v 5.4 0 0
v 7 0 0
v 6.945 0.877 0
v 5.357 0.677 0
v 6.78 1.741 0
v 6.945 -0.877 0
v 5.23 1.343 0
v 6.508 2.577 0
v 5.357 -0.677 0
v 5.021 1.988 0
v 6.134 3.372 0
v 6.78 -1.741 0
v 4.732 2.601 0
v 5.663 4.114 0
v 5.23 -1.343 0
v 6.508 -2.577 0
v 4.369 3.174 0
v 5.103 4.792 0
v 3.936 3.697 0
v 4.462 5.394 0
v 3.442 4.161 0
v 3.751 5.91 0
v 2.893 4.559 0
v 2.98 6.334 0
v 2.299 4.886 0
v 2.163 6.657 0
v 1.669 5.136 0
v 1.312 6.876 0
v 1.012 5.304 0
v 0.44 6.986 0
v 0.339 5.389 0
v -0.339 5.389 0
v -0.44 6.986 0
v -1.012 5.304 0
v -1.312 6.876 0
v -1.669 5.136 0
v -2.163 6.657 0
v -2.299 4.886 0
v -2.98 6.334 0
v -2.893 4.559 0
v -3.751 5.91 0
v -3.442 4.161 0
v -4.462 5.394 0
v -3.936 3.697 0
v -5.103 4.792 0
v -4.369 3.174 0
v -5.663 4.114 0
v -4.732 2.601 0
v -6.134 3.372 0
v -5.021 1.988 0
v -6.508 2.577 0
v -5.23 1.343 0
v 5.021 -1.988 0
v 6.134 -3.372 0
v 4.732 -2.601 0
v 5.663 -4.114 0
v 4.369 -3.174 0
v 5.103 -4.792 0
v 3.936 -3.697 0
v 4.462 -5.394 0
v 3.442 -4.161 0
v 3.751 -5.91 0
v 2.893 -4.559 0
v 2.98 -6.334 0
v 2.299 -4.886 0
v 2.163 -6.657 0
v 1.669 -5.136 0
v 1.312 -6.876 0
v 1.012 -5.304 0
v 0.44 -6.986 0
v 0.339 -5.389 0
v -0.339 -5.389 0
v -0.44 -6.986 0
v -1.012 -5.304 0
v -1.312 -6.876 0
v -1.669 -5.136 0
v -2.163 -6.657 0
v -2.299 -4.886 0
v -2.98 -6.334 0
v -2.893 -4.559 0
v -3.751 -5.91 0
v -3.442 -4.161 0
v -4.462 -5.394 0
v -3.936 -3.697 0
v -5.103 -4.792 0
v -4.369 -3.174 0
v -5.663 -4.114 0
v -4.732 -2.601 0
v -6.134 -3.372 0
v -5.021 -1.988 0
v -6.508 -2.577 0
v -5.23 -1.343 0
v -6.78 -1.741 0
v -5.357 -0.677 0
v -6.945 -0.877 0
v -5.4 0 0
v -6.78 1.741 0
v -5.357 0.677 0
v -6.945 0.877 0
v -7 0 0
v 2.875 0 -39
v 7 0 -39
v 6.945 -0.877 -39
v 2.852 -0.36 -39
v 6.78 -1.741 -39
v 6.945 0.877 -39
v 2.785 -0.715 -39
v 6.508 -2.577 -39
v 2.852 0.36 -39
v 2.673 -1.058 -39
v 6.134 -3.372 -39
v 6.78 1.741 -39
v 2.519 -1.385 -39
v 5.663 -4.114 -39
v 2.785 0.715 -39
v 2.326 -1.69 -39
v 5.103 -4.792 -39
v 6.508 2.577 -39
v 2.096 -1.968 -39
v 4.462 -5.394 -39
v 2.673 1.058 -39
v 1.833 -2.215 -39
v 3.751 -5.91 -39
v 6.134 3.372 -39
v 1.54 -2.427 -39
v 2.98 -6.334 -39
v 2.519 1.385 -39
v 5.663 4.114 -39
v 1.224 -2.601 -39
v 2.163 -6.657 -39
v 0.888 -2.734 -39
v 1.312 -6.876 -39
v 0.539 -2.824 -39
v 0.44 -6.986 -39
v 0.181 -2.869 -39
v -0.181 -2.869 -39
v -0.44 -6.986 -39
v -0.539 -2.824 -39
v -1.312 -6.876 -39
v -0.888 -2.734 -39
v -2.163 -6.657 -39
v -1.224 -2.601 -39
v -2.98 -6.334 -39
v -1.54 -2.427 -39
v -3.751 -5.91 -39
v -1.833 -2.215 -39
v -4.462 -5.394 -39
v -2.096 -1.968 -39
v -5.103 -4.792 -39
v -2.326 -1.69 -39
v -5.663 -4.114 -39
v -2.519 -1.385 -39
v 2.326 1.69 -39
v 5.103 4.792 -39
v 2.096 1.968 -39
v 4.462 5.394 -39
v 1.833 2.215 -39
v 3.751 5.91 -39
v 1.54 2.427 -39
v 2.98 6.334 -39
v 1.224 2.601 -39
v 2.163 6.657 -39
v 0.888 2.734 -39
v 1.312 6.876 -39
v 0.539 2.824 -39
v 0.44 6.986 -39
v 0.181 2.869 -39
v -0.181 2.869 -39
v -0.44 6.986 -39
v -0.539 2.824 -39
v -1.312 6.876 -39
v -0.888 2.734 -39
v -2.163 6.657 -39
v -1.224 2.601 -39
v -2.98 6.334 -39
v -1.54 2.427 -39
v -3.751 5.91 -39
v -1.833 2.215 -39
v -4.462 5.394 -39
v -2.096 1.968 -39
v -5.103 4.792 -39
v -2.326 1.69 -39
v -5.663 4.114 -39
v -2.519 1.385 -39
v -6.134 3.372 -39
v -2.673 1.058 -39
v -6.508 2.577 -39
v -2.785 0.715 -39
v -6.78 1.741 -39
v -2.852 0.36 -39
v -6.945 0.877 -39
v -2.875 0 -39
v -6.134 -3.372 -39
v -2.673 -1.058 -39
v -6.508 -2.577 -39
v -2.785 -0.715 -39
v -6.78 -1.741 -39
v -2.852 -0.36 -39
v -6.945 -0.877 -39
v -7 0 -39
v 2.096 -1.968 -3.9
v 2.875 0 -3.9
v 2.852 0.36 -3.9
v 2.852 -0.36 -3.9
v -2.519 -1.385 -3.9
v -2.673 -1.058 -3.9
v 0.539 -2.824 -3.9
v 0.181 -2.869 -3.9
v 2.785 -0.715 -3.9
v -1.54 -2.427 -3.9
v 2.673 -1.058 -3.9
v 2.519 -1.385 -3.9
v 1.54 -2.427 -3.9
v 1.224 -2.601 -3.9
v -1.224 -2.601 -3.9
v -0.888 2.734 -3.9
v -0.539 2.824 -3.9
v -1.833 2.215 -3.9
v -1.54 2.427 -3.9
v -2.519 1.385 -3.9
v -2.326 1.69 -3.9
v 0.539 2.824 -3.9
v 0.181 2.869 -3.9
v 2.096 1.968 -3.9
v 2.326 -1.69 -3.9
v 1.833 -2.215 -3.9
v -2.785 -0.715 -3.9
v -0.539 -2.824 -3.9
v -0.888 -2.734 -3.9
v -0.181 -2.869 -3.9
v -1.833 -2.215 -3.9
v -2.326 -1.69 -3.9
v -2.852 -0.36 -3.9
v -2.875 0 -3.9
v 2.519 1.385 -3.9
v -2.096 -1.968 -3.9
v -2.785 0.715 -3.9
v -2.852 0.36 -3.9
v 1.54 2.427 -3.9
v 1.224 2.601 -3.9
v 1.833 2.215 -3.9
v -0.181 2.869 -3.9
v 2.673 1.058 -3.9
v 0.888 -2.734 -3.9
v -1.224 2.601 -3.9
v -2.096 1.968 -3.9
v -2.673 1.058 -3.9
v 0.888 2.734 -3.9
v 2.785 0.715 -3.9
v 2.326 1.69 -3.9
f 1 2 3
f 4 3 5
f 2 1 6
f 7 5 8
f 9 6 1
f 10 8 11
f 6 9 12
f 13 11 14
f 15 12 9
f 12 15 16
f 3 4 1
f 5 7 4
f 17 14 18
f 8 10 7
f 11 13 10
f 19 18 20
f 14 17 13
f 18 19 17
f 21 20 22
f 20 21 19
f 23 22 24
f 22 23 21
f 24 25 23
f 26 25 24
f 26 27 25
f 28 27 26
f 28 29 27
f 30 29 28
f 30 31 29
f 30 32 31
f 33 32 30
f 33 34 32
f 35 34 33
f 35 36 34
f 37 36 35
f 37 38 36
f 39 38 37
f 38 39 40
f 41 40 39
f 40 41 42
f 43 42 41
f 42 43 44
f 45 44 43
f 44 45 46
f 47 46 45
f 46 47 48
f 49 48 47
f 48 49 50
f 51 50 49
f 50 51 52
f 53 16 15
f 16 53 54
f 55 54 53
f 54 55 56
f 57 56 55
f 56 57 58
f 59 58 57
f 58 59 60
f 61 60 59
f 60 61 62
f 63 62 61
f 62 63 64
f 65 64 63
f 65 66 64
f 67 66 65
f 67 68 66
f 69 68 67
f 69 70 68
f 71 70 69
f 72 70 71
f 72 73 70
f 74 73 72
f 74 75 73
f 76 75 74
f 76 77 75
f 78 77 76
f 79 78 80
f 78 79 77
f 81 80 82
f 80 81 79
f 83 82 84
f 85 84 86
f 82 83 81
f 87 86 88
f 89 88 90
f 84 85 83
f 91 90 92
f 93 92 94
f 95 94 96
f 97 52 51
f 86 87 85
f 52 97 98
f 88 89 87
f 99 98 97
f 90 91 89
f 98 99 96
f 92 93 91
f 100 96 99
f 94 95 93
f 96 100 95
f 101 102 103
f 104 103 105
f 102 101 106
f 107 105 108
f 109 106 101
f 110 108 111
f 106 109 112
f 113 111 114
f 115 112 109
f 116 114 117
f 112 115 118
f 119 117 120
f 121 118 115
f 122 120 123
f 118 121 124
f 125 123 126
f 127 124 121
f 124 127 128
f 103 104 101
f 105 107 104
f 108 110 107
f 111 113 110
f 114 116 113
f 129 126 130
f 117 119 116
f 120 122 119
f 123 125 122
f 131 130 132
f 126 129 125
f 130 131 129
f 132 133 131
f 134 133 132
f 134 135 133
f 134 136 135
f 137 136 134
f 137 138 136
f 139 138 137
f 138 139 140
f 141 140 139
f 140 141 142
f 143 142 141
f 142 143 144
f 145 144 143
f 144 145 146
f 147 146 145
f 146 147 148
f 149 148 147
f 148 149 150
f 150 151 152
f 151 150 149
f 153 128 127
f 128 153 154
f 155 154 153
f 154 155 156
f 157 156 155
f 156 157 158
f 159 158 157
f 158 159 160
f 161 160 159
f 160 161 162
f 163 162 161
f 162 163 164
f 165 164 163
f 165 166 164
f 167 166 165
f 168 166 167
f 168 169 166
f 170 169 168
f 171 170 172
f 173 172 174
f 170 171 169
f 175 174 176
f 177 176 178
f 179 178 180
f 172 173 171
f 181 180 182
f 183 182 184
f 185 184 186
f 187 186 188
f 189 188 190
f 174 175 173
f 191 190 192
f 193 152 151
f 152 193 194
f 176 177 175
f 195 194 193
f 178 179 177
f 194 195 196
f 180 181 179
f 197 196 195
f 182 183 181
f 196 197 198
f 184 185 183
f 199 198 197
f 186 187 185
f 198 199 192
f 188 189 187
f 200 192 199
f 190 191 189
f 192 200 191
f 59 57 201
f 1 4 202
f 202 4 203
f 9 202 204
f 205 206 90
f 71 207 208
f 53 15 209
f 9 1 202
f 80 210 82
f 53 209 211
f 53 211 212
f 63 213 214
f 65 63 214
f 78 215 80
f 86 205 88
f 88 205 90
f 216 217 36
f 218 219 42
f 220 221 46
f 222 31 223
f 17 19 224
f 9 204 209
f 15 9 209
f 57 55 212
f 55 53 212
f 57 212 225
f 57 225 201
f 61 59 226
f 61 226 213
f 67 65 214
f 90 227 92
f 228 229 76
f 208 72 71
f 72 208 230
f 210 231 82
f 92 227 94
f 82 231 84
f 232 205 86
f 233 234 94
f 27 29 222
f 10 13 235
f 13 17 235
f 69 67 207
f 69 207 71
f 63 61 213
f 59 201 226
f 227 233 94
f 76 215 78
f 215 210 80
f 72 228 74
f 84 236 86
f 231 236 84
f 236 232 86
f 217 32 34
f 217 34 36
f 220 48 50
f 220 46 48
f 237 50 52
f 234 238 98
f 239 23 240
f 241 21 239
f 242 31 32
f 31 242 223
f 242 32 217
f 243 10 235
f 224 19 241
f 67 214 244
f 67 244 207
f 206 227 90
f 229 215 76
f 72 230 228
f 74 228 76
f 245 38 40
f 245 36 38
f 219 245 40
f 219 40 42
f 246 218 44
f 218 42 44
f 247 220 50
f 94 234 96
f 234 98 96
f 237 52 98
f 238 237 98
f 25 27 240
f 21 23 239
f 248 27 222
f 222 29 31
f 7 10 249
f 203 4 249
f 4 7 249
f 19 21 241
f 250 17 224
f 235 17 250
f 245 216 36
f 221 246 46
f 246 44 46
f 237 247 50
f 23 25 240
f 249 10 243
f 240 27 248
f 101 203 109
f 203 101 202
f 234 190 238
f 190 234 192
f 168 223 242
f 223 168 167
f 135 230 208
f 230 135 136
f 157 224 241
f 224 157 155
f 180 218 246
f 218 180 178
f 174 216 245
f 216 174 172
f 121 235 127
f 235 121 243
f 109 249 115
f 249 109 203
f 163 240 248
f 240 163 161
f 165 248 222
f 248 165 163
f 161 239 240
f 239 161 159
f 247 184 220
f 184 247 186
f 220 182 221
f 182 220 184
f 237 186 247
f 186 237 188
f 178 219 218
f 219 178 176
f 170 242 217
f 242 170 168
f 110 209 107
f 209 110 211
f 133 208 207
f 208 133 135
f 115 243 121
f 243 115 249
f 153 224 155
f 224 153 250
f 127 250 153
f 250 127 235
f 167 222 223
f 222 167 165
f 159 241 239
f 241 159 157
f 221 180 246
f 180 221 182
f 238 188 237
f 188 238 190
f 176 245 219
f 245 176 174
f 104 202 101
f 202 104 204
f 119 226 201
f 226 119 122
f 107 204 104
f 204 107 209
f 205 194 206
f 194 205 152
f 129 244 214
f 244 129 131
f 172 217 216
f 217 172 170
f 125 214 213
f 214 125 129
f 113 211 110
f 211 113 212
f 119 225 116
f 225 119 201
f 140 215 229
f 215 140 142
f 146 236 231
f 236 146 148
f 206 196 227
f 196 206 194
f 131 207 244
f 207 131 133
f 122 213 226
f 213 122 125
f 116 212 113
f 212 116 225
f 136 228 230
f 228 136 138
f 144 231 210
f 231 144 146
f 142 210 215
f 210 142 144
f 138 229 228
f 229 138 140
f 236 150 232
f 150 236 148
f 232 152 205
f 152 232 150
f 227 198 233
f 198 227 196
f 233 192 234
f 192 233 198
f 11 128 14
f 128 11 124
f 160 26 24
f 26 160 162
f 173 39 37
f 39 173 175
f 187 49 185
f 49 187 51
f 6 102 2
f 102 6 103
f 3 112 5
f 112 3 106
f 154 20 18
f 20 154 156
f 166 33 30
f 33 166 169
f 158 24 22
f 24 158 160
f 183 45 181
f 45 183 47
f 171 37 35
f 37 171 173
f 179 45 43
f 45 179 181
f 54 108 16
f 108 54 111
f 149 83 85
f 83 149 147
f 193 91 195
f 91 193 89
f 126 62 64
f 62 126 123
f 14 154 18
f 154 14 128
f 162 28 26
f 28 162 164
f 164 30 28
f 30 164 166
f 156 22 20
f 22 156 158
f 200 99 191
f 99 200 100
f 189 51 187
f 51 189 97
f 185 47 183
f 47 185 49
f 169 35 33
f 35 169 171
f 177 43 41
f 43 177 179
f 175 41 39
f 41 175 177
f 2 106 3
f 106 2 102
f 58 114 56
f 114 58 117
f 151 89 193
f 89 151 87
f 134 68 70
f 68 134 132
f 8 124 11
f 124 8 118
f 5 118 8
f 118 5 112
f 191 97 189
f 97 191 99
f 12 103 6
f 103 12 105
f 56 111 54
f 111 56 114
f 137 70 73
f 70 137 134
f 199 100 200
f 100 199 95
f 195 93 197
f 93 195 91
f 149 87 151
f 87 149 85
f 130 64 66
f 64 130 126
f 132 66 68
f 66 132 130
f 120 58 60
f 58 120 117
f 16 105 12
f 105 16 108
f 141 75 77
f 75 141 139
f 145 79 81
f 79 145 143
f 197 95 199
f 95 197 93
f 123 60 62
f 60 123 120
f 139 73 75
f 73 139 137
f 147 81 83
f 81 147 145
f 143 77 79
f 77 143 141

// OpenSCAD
$fn = 50;


difference() {
	union() {
		translate(v = [0, 0, -39.0000000000]) {
			cylinder(h = 39, r = 7.0000000000);
		}
		cylinder(h = 0, r = 13.0000000000);
	}
	union() {
		translate(v = [0, 0, 0]) {
			rotate(a = [0, 0, 0]) {
				difference() {
					union() {
						#translate(v = [0, 0, -39.0000000000]) {
							cylinder(h = 39, r = 2.6000000000);
						}
						#translate(v = [0, 0, -3.9000000000]) {
							cylinder(h = 3.9000000000, r = 7.0000000000, r1 = 2.8750000000, r2 = 5.4000000000);
						}
						#translate(v = [0, 0, -39.0000000000]) {
							cylinder(h = 39, r = 2.8750000000);
						}
						#translate(v = [0, 0, -39.0000000000]) {
							cylinder(h = 39, r = 2.6000000000);
						}
					}
					union();
				}
			}
		}
	}
}
